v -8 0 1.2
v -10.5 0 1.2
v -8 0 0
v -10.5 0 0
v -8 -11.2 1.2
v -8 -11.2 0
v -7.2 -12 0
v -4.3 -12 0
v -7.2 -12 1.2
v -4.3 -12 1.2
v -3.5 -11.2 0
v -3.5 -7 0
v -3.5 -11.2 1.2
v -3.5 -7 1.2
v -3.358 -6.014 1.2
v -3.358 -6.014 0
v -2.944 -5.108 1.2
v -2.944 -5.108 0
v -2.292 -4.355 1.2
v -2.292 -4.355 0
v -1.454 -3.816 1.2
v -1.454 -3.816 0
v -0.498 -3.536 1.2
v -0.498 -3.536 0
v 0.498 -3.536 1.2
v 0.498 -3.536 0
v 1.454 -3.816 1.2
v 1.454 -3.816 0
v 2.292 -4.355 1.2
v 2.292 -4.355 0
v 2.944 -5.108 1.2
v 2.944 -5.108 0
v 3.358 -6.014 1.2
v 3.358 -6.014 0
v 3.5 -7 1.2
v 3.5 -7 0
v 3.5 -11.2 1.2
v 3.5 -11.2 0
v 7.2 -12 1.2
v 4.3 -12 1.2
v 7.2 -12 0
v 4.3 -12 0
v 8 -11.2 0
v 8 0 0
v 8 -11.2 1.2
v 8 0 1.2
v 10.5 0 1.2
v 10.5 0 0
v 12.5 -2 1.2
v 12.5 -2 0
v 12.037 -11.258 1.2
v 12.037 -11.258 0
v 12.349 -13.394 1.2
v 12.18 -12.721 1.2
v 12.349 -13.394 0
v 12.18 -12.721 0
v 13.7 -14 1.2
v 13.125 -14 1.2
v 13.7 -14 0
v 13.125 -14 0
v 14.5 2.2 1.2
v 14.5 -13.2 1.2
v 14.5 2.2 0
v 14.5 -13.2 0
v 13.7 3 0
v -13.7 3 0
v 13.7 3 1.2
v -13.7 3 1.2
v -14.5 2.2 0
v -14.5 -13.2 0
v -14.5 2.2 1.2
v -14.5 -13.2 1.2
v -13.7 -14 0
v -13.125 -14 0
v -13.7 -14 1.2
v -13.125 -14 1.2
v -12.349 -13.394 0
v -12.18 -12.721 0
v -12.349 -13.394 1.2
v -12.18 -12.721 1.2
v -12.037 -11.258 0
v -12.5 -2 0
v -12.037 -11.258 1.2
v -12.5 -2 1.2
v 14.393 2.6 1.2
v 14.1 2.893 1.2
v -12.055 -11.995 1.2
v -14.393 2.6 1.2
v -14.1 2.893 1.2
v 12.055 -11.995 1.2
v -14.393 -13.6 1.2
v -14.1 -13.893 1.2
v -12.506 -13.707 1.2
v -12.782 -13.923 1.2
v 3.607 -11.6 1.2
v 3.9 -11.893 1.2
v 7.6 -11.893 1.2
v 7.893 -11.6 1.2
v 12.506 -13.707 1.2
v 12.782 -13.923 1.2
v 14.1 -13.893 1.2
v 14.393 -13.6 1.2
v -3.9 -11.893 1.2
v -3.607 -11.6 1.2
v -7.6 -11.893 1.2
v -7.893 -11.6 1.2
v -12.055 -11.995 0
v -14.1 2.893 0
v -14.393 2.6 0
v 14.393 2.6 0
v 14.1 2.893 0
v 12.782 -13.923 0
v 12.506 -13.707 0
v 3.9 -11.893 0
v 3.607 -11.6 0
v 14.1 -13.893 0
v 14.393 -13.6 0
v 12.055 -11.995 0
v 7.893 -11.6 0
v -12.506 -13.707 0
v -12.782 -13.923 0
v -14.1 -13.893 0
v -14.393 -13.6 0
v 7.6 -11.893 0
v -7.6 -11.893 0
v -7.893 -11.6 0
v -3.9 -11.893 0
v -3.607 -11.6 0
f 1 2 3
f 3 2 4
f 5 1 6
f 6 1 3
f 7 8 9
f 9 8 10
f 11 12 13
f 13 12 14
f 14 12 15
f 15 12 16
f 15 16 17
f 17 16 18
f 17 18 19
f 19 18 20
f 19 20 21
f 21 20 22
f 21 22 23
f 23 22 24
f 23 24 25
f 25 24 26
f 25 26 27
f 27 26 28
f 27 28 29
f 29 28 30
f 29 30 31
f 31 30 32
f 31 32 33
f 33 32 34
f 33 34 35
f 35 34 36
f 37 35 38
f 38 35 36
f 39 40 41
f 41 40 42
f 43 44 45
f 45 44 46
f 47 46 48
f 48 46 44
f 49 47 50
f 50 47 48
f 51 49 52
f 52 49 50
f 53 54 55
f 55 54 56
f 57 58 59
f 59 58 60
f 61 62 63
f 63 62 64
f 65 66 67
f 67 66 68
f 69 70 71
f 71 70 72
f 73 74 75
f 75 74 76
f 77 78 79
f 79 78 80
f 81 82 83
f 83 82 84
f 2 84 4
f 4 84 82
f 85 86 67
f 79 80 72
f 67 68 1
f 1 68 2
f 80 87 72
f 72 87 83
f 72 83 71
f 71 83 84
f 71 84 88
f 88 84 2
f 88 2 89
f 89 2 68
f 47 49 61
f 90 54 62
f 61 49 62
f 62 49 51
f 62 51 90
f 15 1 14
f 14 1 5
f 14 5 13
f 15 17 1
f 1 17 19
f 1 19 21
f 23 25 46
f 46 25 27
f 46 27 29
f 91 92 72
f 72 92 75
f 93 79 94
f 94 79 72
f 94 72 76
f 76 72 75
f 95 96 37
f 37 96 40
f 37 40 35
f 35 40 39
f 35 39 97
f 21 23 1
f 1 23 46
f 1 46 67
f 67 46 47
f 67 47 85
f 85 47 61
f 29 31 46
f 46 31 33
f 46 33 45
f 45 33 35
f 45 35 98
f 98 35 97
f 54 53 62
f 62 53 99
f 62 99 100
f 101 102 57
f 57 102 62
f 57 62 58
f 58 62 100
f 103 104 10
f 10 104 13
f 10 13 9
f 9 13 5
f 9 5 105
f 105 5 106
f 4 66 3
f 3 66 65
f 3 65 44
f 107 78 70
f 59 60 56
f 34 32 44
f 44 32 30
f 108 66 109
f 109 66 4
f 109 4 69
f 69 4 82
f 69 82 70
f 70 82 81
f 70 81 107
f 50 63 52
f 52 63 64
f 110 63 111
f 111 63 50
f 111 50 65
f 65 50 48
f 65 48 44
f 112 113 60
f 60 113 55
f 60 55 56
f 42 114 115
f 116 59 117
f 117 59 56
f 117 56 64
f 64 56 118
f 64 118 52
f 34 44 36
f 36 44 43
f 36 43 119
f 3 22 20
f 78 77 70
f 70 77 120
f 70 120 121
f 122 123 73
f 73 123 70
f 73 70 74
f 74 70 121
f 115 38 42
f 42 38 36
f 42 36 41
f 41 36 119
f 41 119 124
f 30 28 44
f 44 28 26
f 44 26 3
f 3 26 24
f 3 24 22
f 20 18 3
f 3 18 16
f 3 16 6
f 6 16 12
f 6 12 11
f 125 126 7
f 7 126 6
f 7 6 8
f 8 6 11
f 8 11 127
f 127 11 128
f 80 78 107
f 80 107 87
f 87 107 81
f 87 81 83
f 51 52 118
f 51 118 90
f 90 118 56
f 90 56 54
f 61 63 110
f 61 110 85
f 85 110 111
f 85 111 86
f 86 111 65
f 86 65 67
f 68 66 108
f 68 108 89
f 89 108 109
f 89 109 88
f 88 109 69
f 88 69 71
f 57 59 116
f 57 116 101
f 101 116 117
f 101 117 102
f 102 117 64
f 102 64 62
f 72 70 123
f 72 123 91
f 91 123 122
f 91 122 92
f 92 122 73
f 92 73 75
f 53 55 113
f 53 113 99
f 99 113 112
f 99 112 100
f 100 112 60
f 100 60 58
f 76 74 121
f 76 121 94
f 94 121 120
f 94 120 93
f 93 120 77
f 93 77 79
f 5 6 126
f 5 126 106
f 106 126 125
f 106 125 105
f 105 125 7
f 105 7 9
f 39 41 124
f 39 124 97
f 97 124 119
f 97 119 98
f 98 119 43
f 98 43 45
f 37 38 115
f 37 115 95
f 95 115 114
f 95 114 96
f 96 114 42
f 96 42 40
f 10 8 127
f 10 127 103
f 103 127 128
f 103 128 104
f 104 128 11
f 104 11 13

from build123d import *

# Parameters (mm, degrees)
BOSS_EXTRUDE1_DEPTH = 1.2
FILLET1_R           = 5
FILLET2_R           = 0.8


with BuildPart() as part:
    # Sketch1 → Boss-Extrude1 (new body)
    with BuildSketch(Plane.XY):
        with BuildLine():
            Line((-10.5, 0), (-12.5, -2))
            Line((-12.5, -2), (-12, -12))
            Line((-12, -12), (-12.5, -14))
            Line((-12.5, -14), (-14.5, -14))
            Line((-14.5, -14), (-14.5, 3))
            Line((-14.5, 3), (-12.5, 3))
            Line((-12.5, 3), (12.5, 3))
            Line((12.5, 3), (14.5, 3))
            Line((14.5, 3), (14.5, -14))
            Line((14.5, -14), (12.5, -14))
            Line((12.5, -14), (12, -12))
            Line((12, -12), (12.5, -2))
            Line((12.5, -2), (10.5, 0))
            Line((10.5, 0), (8, 0))
            Line((8, 0), (8, -12))
            Line((8, -12), (3.5, -12))
            Line((3.5, -12), (3.5, -7))
            ThreePointArc((3.5, -7), (0, -3.5), (-3.5, -7))
            Line((-3.5, -7), (-3.5, -12))
            Line((-3.5, -12), (-8, -12))
            Line((-8, -12), (-8, 0))
            Line((-8, 0), (-10.5, 0))
        make_face()
    extrude(amount=BOSS_EXTRUDE1_DEPTH)

    # Fillet1
    fillet1_edges = [part.edges().sort_by_distance(p)[0] for p in [
        (-12, -12, 0.6),
        (12, -12, 0.6),
    ]]
    fillet(fillet1_edges, radius=FILLET1_R)

    # Fillet2
    fillet2_edges = [part.edges().sort_by_distance(p)[0] for p in [
        (-12.5, -14, 0.6),
        (-14.5, -14, 0.6),
        (-14.5, 3, 0.6),
        (14.5, 3, 0.6),
        (14.5, -14, 0.6),
        (12.5, -14, 0.6),
        (8, -12, 0.6),
        (3.5, -12, 0.6),
        (-3.5, -12, 0.6),
        (-8, -12, 0.6),
    ]]
    fillet(fillet2_edges, radius=FILLET2_R)


solid = part.part
